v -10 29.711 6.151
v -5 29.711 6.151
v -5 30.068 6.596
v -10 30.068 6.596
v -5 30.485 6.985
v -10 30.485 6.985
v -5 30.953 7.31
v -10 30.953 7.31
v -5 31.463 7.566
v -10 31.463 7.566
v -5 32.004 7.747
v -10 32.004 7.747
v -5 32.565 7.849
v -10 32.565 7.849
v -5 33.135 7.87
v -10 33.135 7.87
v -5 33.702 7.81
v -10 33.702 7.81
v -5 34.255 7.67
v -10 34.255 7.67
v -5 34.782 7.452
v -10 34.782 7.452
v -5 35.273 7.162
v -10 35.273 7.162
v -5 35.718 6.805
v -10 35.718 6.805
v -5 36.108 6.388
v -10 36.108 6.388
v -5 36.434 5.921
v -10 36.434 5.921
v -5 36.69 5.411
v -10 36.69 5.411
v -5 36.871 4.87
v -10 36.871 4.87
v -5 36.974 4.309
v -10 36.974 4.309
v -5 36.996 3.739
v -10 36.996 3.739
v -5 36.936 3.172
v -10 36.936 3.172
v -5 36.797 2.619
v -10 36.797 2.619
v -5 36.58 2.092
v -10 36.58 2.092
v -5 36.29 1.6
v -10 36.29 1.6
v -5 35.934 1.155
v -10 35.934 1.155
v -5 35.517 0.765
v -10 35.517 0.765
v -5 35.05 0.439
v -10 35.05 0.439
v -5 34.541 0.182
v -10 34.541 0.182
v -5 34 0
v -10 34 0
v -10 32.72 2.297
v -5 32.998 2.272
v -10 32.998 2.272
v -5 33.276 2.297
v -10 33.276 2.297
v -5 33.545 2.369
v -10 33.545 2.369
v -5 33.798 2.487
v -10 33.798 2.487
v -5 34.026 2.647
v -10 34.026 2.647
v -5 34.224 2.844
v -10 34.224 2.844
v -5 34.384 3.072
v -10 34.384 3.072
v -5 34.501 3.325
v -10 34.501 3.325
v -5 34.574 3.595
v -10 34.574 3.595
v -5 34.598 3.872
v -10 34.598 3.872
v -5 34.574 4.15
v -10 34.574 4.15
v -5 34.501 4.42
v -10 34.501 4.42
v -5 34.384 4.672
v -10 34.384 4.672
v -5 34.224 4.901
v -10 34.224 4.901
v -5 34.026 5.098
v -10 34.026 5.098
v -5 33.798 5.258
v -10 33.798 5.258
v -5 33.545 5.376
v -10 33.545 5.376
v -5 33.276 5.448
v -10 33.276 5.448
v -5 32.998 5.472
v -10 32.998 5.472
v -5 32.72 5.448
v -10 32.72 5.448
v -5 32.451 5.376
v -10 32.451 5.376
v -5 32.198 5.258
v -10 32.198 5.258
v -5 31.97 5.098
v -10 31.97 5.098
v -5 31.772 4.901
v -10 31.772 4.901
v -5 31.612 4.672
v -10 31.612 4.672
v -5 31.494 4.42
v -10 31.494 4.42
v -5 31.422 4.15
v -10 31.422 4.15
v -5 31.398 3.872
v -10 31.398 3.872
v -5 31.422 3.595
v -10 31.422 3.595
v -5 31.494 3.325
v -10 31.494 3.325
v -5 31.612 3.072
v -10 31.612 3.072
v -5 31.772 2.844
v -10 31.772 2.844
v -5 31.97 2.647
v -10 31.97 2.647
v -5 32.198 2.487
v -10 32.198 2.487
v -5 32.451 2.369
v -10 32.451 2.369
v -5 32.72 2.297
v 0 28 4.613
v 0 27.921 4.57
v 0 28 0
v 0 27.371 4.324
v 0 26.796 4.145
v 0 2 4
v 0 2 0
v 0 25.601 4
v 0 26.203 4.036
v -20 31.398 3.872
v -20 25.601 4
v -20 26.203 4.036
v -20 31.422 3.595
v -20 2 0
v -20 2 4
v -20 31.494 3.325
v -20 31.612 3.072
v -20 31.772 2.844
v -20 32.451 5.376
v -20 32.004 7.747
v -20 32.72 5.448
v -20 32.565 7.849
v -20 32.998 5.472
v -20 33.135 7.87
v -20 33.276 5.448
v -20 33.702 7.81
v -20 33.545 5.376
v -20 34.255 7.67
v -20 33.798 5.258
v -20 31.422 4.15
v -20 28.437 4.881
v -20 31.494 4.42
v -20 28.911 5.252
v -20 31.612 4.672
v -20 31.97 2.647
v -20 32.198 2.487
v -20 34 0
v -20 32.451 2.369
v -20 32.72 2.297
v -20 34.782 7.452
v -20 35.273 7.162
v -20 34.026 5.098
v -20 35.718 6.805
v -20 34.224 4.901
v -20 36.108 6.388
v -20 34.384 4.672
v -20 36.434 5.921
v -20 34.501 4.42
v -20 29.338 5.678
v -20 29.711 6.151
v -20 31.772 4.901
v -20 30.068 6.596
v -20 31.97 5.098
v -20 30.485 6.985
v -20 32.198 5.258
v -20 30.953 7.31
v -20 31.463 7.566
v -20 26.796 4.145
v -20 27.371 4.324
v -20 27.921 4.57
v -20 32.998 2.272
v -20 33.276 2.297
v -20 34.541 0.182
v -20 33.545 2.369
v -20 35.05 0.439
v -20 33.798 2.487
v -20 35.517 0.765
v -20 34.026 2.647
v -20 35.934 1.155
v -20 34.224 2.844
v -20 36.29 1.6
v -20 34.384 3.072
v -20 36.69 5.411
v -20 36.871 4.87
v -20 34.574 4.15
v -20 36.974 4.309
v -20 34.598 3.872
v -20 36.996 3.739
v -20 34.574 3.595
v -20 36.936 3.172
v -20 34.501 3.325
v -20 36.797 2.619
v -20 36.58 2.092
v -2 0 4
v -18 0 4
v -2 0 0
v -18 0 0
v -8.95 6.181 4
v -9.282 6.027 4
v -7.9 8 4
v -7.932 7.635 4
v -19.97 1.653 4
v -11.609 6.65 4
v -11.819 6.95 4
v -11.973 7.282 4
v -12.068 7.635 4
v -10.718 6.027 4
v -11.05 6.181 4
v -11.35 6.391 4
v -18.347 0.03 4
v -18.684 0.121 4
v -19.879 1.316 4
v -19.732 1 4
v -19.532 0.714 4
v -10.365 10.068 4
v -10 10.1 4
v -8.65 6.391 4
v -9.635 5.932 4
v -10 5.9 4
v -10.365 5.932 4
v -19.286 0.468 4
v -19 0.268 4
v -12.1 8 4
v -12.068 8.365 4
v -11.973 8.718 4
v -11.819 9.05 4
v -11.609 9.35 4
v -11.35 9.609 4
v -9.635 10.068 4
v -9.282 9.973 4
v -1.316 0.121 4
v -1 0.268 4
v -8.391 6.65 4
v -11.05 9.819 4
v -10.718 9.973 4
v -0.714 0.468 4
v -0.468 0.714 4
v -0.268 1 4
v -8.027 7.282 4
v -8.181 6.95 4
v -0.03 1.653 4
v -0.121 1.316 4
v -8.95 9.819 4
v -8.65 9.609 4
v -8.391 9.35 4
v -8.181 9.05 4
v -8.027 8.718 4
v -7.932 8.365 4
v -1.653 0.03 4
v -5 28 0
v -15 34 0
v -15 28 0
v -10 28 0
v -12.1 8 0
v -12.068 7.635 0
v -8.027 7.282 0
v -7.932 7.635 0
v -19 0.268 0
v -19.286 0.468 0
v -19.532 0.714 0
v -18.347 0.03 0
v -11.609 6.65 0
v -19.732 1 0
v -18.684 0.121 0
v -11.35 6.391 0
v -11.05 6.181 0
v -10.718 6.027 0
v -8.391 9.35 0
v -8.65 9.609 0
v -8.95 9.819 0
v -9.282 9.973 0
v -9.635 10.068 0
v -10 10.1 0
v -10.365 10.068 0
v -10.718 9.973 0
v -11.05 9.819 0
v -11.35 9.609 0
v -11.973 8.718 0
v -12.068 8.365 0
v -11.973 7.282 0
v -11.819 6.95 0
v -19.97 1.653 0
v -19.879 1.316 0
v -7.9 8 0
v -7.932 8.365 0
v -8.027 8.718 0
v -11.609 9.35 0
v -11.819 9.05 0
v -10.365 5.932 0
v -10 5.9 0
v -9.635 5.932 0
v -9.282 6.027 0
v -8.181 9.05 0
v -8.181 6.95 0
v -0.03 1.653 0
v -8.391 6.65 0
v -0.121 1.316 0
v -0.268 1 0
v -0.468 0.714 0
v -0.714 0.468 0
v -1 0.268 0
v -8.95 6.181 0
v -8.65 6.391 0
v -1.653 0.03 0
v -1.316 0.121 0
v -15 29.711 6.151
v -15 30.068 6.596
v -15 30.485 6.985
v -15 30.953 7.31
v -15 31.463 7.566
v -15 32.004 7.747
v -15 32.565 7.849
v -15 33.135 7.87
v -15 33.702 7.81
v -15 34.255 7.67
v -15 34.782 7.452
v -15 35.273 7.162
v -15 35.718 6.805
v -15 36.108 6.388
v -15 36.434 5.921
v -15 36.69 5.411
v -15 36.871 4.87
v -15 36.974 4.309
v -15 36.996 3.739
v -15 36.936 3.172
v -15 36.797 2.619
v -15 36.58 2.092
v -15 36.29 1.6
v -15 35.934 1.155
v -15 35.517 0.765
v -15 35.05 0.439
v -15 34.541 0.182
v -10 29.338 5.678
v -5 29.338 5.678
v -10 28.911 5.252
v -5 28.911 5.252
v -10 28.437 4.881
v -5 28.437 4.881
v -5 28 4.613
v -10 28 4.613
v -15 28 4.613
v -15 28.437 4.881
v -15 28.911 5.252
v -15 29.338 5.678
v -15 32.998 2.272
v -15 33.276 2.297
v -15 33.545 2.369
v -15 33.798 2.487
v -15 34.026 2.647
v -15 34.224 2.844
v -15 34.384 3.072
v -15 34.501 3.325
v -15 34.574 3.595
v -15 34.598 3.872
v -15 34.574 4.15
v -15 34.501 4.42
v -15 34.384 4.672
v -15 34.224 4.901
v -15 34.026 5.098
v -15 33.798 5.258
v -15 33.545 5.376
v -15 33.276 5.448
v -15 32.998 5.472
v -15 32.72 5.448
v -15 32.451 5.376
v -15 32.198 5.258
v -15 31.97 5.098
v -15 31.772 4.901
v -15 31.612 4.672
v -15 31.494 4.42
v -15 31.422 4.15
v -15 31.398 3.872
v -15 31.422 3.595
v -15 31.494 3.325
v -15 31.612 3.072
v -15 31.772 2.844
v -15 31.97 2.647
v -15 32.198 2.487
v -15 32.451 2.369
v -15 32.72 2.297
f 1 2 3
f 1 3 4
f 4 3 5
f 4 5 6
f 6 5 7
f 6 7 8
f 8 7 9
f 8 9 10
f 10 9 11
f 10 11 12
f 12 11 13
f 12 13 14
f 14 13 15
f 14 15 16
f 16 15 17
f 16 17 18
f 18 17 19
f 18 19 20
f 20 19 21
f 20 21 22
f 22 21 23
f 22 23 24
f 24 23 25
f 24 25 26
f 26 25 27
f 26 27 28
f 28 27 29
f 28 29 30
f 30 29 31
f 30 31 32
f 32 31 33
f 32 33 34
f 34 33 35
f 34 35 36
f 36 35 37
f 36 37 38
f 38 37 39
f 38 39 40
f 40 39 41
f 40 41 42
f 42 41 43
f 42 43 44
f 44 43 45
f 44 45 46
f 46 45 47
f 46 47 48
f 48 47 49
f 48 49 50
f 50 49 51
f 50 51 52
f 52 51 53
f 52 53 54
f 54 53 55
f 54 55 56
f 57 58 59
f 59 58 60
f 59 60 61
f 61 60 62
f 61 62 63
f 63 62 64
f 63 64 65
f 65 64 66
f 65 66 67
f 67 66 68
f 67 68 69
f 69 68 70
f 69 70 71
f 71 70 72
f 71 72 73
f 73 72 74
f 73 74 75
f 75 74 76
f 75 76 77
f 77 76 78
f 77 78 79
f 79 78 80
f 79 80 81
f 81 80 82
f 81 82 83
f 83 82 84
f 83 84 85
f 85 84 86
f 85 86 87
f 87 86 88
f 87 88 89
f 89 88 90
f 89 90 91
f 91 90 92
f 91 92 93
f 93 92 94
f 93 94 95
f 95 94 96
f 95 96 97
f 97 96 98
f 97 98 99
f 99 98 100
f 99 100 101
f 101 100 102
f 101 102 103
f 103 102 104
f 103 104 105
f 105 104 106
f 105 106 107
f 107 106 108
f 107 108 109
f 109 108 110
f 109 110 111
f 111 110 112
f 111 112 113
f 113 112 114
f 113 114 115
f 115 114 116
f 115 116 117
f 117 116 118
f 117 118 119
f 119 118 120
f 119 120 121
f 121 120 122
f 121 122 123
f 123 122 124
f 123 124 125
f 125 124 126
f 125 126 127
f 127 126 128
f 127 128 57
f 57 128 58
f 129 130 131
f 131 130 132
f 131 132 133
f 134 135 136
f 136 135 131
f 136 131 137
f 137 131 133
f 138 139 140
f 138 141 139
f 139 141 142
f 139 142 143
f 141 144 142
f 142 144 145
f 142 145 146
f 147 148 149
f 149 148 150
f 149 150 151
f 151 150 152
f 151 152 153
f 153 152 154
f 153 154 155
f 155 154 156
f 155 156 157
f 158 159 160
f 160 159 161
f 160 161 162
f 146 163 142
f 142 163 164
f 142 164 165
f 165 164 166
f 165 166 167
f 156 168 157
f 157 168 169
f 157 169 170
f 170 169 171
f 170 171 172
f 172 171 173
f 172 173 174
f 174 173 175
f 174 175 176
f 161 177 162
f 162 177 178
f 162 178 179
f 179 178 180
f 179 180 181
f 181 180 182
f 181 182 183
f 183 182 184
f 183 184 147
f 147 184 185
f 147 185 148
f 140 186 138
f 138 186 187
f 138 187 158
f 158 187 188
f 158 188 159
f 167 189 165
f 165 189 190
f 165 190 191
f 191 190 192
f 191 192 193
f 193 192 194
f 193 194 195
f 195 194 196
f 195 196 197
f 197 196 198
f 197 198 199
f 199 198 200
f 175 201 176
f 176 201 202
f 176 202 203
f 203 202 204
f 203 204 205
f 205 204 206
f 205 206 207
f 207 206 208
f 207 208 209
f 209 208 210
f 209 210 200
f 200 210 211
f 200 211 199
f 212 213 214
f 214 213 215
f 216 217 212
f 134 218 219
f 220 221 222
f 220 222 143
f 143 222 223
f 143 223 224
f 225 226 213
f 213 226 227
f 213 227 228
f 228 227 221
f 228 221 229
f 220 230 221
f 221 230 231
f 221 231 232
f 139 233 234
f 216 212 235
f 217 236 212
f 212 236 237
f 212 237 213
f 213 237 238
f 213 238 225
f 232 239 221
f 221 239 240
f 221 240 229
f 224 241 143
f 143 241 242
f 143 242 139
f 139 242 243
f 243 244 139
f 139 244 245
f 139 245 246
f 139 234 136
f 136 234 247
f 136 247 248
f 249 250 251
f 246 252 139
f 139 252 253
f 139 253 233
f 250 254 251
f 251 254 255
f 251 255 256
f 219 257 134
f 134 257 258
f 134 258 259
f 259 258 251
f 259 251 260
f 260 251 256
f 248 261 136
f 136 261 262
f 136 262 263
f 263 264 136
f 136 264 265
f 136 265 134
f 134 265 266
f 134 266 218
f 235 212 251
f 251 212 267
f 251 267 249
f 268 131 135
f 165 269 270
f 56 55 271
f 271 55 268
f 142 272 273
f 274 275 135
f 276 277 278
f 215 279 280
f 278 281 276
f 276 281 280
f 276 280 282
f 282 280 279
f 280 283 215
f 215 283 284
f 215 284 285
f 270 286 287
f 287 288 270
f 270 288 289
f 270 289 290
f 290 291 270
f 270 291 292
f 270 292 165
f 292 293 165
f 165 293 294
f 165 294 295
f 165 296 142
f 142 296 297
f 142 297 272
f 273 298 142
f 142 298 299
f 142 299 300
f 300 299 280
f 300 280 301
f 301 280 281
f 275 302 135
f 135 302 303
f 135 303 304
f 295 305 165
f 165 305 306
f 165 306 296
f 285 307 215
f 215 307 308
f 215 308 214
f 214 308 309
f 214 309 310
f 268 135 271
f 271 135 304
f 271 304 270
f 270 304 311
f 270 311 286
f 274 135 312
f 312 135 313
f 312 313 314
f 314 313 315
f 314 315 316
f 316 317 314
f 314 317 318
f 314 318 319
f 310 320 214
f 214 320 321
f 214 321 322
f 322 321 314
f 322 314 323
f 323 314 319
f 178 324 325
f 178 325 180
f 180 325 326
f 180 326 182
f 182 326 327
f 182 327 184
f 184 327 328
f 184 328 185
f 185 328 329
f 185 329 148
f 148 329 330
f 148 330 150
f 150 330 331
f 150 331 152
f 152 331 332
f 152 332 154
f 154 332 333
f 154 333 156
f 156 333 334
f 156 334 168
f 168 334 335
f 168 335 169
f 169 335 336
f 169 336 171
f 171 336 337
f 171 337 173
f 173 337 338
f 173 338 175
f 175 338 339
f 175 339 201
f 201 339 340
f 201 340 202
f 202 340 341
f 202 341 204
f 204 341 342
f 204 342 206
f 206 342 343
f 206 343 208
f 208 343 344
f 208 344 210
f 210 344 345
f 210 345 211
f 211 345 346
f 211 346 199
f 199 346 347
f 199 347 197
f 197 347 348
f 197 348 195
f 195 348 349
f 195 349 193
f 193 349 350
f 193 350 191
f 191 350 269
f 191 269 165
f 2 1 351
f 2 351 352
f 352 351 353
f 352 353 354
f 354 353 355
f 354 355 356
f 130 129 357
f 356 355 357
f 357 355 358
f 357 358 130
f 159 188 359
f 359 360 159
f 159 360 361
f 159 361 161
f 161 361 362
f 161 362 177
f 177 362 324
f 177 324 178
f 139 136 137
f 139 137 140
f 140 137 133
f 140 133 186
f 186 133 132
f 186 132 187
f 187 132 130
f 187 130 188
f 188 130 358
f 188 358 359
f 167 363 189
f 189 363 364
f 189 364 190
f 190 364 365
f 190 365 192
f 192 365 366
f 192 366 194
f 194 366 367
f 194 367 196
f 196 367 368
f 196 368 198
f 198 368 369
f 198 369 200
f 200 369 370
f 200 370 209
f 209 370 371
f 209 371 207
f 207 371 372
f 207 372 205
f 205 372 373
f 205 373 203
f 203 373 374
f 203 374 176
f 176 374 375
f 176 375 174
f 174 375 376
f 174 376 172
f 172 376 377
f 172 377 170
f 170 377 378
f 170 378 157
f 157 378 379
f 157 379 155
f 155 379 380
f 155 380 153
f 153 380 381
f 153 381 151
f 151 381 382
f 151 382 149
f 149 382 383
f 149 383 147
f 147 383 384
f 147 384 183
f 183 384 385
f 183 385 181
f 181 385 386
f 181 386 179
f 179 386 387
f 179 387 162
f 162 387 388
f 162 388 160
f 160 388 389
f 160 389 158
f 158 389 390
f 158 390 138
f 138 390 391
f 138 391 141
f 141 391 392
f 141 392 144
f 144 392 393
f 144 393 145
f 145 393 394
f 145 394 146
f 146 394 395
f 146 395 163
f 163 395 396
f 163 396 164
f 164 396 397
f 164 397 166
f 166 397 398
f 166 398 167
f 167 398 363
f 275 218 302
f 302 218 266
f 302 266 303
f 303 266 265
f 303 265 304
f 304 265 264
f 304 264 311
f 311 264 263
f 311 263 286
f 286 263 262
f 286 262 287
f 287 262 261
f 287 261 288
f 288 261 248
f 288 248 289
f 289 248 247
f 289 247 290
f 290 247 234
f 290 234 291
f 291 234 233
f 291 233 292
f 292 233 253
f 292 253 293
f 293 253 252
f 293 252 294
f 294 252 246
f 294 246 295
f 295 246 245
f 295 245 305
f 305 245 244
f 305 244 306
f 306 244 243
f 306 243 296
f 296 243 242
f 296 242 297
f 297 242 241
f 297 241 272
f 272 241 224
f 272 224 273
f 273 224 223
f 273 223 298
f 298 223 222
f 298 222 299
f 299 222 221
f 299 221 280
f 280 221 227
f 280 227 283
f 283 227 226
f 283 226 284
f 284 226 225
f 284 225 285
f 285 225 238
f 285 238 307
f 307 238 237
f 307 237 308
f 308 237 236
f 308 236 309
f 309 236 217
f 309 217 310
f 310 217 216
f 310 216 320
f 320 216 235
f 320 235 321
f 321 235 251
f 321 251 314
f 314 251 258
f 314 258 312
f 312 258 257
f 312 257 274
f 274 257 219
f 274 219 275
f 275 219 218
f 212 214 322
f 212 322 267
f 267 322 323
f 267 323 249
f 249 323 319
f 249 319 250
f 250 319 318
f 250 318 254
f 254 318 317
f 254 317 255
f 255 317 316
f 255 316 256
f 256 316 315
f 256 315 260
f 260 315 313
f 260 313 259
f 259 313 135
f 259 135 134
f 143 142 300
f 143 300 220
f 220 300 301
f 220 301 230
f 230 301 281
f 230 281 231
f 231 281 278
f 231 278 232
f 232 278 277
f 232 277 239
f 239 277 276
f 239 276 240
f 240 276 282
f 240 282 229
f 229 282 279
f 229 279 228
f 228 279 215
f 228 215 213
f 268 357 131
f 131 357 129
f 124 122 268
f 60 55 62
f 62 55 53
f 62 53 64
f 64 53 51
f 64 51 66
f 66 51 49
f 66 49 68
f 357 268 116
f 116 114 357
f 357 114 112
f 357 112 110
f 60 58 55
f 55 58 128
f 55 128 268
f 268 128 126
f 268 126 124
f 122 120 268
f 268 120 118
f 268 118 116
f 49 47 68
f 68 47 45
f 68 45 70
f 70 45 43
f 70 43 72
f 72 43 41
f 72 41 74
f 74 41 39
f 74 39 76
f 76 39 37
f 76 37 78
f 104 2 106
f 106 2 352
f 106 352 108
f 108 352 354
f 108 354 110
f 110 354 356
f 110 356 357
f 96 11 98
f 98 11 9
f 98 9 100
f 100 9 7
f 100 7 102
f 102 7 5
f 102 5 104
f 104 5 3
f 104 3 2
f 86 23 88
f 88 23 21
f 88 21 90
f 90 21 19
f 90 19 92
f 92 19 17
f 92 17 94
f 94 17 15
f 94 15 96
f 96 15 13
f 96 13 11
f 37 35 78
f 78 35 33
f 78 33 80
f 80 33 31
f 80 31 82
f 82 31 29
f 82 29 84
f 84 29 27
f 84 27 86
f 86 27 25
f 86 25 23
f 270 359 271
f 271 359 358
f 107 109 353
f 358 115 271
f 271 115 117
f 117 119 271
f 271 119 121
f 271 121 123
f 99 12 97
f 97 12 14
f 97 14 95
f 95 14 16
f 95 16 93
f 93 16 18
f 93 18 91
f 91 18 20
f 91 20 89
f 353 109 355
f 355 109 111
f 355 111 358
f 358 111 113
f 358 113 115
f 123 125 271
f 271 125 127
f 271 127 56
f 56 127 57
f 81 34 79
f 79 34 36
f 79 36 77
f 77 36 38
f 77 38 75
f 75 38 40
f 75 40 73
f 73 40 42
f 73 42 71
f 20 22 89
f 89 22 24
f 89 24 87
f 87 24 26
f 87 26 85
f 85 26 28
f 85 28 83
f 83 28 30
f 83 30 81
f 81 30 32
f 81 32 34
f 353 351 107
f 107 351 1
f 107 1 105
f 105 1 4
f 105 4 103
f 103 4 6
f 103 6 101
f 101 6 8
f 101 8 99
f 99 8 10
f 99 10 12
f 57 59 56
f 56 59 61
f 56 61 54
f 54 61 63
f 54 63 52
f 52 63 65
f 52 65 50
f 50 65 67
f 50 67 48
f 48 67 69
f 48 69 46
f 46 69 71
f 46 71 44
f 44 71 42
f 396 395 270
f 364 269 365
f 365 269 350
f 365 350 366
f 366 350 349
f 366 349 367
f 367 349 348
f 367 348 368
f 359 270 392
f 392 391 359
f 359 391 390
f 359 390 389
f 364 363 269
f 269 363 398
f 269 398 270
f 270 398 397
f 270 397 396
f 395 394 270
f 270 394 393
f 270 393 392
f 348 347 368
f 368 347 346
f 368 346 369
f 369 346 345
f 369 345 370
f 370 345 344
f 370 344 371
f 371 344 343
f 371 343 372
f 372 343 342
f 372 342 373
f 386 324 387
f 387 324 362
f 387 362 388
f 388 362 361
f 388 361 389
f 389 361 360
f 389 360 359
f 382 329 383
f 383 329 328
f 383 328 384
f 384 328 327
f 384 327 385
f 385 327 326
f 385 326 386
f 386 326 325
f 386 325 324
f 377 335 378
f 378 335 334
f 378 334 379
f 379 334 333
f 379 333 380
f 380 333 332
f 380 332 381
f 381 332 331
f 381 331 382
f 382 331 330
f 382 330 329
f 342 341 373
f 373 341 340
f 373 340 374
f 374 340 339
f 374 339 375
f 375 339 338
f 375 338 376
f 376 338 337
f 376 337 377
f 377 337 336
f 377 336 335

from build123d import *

# Parameters (mm, degrees)
SKETCH1_W           = 20
SKETCH1_H           = 34
BOSS_EXTRUDE1_DEPTH = 4
BOSS_EXTRUDE2_DEPTH = 20
FILLET1_R           = 5
SKETCH3_R           = 1.6
CUT_EXTRUDE1_DEPTH  = 21
SKETCH4_R           = 2.1
CUT_EXTRUDE2_DEPTH  = 5
FILLET2_R           = 2
SKETCH5_W           = 5
SKETCH5_H           = 12
CUT_EXTRUDE3_DEPTH  = 8.872457626


with BuildPart() as part:
    # Sketch1 → Boss-Extrude1 (new body)
    with BuildSketch(Plane.XY):
        with Locations((-10, 17)):
            Rectangle(SKETCH1_W, SKETCH1_H)
    extrude(amount=BOSS_EXTRUDE1_DEPTH)

    # Sketch2 → Boss-Extrude2 (add)
    with BuildSketch(Plane(origin=(0, 0, 0), x_dir=(0, 0, -1), z_dir=(1, 0, 0))):
        with BuildLine():
            Line((-4, 29), (-4, 34))
            Line((-4, 34), (0, 34))
            ThreePointArc((0, 34), (-6.995932864, 35.496746291), (-4, 29))
        make_face()
    extrude(amount=-BOSS_EXTRUDE2_DEPTH)

    # Fillet1
    fillet1_edges = [part.edges().sort_by_distance(p)[0] for p in [
        (-10, 29, 4),
    ]]
    fillet(fillet1_edges, radius=FILLET1_R)

    # Sketch3 → Cut-Extrude1 (cut, through all)
    with BuildSketch(Plane(origin=(0, 0, 0), x_dir=(0, 0, -1), z_dir=(1, 0, 0))):
        with Locations((-3.872457626, 32.997966101)):
            Circle(SKETCH3_R)
    extrude(amount=-CUT_EXTRUDE1_DEPTH, mode=Mode.SUBTRACT)

    # Sketch4 → Cut-Extrude2 (cut, through all)
    with BuildSketch(Plane.XY.offset(4)):
        with Locations((-10, 8)):
            Circle(SKETCH4_R)
    extrude(amount=-CUT_EXTRUDE2_DEPTH, mode=Mode.SUBTRACT)

    # Fillet2
    fillet2_edges = [part.edges().sort_by_distance(p)[0] for p in [
        (0, 0, 2),
        (-20, 0, 2),
    ]]
    fillet(fillet2_edges, radius=FILLET2_R)

    # Sketch5 → Cut-Extrude3 (cut, through all)
    with BuildSketch(Plane(origin=(0, 0, 0), x_dir=(-1, 0, 0), z_dir=(0, 0, -1))):
        with Locations((2.5, 34)):
            Rectangle(SKETCH5_W, SKETCH5_H)
        with Locations((12.5, 34)):
            Rectangle(SKETCH5_W, SKETCH5_H)
    extrude(amount=-CUT_EXTRUDE3_DEPTH, mode=Mode.SUBTRACT)


solid = part.part
